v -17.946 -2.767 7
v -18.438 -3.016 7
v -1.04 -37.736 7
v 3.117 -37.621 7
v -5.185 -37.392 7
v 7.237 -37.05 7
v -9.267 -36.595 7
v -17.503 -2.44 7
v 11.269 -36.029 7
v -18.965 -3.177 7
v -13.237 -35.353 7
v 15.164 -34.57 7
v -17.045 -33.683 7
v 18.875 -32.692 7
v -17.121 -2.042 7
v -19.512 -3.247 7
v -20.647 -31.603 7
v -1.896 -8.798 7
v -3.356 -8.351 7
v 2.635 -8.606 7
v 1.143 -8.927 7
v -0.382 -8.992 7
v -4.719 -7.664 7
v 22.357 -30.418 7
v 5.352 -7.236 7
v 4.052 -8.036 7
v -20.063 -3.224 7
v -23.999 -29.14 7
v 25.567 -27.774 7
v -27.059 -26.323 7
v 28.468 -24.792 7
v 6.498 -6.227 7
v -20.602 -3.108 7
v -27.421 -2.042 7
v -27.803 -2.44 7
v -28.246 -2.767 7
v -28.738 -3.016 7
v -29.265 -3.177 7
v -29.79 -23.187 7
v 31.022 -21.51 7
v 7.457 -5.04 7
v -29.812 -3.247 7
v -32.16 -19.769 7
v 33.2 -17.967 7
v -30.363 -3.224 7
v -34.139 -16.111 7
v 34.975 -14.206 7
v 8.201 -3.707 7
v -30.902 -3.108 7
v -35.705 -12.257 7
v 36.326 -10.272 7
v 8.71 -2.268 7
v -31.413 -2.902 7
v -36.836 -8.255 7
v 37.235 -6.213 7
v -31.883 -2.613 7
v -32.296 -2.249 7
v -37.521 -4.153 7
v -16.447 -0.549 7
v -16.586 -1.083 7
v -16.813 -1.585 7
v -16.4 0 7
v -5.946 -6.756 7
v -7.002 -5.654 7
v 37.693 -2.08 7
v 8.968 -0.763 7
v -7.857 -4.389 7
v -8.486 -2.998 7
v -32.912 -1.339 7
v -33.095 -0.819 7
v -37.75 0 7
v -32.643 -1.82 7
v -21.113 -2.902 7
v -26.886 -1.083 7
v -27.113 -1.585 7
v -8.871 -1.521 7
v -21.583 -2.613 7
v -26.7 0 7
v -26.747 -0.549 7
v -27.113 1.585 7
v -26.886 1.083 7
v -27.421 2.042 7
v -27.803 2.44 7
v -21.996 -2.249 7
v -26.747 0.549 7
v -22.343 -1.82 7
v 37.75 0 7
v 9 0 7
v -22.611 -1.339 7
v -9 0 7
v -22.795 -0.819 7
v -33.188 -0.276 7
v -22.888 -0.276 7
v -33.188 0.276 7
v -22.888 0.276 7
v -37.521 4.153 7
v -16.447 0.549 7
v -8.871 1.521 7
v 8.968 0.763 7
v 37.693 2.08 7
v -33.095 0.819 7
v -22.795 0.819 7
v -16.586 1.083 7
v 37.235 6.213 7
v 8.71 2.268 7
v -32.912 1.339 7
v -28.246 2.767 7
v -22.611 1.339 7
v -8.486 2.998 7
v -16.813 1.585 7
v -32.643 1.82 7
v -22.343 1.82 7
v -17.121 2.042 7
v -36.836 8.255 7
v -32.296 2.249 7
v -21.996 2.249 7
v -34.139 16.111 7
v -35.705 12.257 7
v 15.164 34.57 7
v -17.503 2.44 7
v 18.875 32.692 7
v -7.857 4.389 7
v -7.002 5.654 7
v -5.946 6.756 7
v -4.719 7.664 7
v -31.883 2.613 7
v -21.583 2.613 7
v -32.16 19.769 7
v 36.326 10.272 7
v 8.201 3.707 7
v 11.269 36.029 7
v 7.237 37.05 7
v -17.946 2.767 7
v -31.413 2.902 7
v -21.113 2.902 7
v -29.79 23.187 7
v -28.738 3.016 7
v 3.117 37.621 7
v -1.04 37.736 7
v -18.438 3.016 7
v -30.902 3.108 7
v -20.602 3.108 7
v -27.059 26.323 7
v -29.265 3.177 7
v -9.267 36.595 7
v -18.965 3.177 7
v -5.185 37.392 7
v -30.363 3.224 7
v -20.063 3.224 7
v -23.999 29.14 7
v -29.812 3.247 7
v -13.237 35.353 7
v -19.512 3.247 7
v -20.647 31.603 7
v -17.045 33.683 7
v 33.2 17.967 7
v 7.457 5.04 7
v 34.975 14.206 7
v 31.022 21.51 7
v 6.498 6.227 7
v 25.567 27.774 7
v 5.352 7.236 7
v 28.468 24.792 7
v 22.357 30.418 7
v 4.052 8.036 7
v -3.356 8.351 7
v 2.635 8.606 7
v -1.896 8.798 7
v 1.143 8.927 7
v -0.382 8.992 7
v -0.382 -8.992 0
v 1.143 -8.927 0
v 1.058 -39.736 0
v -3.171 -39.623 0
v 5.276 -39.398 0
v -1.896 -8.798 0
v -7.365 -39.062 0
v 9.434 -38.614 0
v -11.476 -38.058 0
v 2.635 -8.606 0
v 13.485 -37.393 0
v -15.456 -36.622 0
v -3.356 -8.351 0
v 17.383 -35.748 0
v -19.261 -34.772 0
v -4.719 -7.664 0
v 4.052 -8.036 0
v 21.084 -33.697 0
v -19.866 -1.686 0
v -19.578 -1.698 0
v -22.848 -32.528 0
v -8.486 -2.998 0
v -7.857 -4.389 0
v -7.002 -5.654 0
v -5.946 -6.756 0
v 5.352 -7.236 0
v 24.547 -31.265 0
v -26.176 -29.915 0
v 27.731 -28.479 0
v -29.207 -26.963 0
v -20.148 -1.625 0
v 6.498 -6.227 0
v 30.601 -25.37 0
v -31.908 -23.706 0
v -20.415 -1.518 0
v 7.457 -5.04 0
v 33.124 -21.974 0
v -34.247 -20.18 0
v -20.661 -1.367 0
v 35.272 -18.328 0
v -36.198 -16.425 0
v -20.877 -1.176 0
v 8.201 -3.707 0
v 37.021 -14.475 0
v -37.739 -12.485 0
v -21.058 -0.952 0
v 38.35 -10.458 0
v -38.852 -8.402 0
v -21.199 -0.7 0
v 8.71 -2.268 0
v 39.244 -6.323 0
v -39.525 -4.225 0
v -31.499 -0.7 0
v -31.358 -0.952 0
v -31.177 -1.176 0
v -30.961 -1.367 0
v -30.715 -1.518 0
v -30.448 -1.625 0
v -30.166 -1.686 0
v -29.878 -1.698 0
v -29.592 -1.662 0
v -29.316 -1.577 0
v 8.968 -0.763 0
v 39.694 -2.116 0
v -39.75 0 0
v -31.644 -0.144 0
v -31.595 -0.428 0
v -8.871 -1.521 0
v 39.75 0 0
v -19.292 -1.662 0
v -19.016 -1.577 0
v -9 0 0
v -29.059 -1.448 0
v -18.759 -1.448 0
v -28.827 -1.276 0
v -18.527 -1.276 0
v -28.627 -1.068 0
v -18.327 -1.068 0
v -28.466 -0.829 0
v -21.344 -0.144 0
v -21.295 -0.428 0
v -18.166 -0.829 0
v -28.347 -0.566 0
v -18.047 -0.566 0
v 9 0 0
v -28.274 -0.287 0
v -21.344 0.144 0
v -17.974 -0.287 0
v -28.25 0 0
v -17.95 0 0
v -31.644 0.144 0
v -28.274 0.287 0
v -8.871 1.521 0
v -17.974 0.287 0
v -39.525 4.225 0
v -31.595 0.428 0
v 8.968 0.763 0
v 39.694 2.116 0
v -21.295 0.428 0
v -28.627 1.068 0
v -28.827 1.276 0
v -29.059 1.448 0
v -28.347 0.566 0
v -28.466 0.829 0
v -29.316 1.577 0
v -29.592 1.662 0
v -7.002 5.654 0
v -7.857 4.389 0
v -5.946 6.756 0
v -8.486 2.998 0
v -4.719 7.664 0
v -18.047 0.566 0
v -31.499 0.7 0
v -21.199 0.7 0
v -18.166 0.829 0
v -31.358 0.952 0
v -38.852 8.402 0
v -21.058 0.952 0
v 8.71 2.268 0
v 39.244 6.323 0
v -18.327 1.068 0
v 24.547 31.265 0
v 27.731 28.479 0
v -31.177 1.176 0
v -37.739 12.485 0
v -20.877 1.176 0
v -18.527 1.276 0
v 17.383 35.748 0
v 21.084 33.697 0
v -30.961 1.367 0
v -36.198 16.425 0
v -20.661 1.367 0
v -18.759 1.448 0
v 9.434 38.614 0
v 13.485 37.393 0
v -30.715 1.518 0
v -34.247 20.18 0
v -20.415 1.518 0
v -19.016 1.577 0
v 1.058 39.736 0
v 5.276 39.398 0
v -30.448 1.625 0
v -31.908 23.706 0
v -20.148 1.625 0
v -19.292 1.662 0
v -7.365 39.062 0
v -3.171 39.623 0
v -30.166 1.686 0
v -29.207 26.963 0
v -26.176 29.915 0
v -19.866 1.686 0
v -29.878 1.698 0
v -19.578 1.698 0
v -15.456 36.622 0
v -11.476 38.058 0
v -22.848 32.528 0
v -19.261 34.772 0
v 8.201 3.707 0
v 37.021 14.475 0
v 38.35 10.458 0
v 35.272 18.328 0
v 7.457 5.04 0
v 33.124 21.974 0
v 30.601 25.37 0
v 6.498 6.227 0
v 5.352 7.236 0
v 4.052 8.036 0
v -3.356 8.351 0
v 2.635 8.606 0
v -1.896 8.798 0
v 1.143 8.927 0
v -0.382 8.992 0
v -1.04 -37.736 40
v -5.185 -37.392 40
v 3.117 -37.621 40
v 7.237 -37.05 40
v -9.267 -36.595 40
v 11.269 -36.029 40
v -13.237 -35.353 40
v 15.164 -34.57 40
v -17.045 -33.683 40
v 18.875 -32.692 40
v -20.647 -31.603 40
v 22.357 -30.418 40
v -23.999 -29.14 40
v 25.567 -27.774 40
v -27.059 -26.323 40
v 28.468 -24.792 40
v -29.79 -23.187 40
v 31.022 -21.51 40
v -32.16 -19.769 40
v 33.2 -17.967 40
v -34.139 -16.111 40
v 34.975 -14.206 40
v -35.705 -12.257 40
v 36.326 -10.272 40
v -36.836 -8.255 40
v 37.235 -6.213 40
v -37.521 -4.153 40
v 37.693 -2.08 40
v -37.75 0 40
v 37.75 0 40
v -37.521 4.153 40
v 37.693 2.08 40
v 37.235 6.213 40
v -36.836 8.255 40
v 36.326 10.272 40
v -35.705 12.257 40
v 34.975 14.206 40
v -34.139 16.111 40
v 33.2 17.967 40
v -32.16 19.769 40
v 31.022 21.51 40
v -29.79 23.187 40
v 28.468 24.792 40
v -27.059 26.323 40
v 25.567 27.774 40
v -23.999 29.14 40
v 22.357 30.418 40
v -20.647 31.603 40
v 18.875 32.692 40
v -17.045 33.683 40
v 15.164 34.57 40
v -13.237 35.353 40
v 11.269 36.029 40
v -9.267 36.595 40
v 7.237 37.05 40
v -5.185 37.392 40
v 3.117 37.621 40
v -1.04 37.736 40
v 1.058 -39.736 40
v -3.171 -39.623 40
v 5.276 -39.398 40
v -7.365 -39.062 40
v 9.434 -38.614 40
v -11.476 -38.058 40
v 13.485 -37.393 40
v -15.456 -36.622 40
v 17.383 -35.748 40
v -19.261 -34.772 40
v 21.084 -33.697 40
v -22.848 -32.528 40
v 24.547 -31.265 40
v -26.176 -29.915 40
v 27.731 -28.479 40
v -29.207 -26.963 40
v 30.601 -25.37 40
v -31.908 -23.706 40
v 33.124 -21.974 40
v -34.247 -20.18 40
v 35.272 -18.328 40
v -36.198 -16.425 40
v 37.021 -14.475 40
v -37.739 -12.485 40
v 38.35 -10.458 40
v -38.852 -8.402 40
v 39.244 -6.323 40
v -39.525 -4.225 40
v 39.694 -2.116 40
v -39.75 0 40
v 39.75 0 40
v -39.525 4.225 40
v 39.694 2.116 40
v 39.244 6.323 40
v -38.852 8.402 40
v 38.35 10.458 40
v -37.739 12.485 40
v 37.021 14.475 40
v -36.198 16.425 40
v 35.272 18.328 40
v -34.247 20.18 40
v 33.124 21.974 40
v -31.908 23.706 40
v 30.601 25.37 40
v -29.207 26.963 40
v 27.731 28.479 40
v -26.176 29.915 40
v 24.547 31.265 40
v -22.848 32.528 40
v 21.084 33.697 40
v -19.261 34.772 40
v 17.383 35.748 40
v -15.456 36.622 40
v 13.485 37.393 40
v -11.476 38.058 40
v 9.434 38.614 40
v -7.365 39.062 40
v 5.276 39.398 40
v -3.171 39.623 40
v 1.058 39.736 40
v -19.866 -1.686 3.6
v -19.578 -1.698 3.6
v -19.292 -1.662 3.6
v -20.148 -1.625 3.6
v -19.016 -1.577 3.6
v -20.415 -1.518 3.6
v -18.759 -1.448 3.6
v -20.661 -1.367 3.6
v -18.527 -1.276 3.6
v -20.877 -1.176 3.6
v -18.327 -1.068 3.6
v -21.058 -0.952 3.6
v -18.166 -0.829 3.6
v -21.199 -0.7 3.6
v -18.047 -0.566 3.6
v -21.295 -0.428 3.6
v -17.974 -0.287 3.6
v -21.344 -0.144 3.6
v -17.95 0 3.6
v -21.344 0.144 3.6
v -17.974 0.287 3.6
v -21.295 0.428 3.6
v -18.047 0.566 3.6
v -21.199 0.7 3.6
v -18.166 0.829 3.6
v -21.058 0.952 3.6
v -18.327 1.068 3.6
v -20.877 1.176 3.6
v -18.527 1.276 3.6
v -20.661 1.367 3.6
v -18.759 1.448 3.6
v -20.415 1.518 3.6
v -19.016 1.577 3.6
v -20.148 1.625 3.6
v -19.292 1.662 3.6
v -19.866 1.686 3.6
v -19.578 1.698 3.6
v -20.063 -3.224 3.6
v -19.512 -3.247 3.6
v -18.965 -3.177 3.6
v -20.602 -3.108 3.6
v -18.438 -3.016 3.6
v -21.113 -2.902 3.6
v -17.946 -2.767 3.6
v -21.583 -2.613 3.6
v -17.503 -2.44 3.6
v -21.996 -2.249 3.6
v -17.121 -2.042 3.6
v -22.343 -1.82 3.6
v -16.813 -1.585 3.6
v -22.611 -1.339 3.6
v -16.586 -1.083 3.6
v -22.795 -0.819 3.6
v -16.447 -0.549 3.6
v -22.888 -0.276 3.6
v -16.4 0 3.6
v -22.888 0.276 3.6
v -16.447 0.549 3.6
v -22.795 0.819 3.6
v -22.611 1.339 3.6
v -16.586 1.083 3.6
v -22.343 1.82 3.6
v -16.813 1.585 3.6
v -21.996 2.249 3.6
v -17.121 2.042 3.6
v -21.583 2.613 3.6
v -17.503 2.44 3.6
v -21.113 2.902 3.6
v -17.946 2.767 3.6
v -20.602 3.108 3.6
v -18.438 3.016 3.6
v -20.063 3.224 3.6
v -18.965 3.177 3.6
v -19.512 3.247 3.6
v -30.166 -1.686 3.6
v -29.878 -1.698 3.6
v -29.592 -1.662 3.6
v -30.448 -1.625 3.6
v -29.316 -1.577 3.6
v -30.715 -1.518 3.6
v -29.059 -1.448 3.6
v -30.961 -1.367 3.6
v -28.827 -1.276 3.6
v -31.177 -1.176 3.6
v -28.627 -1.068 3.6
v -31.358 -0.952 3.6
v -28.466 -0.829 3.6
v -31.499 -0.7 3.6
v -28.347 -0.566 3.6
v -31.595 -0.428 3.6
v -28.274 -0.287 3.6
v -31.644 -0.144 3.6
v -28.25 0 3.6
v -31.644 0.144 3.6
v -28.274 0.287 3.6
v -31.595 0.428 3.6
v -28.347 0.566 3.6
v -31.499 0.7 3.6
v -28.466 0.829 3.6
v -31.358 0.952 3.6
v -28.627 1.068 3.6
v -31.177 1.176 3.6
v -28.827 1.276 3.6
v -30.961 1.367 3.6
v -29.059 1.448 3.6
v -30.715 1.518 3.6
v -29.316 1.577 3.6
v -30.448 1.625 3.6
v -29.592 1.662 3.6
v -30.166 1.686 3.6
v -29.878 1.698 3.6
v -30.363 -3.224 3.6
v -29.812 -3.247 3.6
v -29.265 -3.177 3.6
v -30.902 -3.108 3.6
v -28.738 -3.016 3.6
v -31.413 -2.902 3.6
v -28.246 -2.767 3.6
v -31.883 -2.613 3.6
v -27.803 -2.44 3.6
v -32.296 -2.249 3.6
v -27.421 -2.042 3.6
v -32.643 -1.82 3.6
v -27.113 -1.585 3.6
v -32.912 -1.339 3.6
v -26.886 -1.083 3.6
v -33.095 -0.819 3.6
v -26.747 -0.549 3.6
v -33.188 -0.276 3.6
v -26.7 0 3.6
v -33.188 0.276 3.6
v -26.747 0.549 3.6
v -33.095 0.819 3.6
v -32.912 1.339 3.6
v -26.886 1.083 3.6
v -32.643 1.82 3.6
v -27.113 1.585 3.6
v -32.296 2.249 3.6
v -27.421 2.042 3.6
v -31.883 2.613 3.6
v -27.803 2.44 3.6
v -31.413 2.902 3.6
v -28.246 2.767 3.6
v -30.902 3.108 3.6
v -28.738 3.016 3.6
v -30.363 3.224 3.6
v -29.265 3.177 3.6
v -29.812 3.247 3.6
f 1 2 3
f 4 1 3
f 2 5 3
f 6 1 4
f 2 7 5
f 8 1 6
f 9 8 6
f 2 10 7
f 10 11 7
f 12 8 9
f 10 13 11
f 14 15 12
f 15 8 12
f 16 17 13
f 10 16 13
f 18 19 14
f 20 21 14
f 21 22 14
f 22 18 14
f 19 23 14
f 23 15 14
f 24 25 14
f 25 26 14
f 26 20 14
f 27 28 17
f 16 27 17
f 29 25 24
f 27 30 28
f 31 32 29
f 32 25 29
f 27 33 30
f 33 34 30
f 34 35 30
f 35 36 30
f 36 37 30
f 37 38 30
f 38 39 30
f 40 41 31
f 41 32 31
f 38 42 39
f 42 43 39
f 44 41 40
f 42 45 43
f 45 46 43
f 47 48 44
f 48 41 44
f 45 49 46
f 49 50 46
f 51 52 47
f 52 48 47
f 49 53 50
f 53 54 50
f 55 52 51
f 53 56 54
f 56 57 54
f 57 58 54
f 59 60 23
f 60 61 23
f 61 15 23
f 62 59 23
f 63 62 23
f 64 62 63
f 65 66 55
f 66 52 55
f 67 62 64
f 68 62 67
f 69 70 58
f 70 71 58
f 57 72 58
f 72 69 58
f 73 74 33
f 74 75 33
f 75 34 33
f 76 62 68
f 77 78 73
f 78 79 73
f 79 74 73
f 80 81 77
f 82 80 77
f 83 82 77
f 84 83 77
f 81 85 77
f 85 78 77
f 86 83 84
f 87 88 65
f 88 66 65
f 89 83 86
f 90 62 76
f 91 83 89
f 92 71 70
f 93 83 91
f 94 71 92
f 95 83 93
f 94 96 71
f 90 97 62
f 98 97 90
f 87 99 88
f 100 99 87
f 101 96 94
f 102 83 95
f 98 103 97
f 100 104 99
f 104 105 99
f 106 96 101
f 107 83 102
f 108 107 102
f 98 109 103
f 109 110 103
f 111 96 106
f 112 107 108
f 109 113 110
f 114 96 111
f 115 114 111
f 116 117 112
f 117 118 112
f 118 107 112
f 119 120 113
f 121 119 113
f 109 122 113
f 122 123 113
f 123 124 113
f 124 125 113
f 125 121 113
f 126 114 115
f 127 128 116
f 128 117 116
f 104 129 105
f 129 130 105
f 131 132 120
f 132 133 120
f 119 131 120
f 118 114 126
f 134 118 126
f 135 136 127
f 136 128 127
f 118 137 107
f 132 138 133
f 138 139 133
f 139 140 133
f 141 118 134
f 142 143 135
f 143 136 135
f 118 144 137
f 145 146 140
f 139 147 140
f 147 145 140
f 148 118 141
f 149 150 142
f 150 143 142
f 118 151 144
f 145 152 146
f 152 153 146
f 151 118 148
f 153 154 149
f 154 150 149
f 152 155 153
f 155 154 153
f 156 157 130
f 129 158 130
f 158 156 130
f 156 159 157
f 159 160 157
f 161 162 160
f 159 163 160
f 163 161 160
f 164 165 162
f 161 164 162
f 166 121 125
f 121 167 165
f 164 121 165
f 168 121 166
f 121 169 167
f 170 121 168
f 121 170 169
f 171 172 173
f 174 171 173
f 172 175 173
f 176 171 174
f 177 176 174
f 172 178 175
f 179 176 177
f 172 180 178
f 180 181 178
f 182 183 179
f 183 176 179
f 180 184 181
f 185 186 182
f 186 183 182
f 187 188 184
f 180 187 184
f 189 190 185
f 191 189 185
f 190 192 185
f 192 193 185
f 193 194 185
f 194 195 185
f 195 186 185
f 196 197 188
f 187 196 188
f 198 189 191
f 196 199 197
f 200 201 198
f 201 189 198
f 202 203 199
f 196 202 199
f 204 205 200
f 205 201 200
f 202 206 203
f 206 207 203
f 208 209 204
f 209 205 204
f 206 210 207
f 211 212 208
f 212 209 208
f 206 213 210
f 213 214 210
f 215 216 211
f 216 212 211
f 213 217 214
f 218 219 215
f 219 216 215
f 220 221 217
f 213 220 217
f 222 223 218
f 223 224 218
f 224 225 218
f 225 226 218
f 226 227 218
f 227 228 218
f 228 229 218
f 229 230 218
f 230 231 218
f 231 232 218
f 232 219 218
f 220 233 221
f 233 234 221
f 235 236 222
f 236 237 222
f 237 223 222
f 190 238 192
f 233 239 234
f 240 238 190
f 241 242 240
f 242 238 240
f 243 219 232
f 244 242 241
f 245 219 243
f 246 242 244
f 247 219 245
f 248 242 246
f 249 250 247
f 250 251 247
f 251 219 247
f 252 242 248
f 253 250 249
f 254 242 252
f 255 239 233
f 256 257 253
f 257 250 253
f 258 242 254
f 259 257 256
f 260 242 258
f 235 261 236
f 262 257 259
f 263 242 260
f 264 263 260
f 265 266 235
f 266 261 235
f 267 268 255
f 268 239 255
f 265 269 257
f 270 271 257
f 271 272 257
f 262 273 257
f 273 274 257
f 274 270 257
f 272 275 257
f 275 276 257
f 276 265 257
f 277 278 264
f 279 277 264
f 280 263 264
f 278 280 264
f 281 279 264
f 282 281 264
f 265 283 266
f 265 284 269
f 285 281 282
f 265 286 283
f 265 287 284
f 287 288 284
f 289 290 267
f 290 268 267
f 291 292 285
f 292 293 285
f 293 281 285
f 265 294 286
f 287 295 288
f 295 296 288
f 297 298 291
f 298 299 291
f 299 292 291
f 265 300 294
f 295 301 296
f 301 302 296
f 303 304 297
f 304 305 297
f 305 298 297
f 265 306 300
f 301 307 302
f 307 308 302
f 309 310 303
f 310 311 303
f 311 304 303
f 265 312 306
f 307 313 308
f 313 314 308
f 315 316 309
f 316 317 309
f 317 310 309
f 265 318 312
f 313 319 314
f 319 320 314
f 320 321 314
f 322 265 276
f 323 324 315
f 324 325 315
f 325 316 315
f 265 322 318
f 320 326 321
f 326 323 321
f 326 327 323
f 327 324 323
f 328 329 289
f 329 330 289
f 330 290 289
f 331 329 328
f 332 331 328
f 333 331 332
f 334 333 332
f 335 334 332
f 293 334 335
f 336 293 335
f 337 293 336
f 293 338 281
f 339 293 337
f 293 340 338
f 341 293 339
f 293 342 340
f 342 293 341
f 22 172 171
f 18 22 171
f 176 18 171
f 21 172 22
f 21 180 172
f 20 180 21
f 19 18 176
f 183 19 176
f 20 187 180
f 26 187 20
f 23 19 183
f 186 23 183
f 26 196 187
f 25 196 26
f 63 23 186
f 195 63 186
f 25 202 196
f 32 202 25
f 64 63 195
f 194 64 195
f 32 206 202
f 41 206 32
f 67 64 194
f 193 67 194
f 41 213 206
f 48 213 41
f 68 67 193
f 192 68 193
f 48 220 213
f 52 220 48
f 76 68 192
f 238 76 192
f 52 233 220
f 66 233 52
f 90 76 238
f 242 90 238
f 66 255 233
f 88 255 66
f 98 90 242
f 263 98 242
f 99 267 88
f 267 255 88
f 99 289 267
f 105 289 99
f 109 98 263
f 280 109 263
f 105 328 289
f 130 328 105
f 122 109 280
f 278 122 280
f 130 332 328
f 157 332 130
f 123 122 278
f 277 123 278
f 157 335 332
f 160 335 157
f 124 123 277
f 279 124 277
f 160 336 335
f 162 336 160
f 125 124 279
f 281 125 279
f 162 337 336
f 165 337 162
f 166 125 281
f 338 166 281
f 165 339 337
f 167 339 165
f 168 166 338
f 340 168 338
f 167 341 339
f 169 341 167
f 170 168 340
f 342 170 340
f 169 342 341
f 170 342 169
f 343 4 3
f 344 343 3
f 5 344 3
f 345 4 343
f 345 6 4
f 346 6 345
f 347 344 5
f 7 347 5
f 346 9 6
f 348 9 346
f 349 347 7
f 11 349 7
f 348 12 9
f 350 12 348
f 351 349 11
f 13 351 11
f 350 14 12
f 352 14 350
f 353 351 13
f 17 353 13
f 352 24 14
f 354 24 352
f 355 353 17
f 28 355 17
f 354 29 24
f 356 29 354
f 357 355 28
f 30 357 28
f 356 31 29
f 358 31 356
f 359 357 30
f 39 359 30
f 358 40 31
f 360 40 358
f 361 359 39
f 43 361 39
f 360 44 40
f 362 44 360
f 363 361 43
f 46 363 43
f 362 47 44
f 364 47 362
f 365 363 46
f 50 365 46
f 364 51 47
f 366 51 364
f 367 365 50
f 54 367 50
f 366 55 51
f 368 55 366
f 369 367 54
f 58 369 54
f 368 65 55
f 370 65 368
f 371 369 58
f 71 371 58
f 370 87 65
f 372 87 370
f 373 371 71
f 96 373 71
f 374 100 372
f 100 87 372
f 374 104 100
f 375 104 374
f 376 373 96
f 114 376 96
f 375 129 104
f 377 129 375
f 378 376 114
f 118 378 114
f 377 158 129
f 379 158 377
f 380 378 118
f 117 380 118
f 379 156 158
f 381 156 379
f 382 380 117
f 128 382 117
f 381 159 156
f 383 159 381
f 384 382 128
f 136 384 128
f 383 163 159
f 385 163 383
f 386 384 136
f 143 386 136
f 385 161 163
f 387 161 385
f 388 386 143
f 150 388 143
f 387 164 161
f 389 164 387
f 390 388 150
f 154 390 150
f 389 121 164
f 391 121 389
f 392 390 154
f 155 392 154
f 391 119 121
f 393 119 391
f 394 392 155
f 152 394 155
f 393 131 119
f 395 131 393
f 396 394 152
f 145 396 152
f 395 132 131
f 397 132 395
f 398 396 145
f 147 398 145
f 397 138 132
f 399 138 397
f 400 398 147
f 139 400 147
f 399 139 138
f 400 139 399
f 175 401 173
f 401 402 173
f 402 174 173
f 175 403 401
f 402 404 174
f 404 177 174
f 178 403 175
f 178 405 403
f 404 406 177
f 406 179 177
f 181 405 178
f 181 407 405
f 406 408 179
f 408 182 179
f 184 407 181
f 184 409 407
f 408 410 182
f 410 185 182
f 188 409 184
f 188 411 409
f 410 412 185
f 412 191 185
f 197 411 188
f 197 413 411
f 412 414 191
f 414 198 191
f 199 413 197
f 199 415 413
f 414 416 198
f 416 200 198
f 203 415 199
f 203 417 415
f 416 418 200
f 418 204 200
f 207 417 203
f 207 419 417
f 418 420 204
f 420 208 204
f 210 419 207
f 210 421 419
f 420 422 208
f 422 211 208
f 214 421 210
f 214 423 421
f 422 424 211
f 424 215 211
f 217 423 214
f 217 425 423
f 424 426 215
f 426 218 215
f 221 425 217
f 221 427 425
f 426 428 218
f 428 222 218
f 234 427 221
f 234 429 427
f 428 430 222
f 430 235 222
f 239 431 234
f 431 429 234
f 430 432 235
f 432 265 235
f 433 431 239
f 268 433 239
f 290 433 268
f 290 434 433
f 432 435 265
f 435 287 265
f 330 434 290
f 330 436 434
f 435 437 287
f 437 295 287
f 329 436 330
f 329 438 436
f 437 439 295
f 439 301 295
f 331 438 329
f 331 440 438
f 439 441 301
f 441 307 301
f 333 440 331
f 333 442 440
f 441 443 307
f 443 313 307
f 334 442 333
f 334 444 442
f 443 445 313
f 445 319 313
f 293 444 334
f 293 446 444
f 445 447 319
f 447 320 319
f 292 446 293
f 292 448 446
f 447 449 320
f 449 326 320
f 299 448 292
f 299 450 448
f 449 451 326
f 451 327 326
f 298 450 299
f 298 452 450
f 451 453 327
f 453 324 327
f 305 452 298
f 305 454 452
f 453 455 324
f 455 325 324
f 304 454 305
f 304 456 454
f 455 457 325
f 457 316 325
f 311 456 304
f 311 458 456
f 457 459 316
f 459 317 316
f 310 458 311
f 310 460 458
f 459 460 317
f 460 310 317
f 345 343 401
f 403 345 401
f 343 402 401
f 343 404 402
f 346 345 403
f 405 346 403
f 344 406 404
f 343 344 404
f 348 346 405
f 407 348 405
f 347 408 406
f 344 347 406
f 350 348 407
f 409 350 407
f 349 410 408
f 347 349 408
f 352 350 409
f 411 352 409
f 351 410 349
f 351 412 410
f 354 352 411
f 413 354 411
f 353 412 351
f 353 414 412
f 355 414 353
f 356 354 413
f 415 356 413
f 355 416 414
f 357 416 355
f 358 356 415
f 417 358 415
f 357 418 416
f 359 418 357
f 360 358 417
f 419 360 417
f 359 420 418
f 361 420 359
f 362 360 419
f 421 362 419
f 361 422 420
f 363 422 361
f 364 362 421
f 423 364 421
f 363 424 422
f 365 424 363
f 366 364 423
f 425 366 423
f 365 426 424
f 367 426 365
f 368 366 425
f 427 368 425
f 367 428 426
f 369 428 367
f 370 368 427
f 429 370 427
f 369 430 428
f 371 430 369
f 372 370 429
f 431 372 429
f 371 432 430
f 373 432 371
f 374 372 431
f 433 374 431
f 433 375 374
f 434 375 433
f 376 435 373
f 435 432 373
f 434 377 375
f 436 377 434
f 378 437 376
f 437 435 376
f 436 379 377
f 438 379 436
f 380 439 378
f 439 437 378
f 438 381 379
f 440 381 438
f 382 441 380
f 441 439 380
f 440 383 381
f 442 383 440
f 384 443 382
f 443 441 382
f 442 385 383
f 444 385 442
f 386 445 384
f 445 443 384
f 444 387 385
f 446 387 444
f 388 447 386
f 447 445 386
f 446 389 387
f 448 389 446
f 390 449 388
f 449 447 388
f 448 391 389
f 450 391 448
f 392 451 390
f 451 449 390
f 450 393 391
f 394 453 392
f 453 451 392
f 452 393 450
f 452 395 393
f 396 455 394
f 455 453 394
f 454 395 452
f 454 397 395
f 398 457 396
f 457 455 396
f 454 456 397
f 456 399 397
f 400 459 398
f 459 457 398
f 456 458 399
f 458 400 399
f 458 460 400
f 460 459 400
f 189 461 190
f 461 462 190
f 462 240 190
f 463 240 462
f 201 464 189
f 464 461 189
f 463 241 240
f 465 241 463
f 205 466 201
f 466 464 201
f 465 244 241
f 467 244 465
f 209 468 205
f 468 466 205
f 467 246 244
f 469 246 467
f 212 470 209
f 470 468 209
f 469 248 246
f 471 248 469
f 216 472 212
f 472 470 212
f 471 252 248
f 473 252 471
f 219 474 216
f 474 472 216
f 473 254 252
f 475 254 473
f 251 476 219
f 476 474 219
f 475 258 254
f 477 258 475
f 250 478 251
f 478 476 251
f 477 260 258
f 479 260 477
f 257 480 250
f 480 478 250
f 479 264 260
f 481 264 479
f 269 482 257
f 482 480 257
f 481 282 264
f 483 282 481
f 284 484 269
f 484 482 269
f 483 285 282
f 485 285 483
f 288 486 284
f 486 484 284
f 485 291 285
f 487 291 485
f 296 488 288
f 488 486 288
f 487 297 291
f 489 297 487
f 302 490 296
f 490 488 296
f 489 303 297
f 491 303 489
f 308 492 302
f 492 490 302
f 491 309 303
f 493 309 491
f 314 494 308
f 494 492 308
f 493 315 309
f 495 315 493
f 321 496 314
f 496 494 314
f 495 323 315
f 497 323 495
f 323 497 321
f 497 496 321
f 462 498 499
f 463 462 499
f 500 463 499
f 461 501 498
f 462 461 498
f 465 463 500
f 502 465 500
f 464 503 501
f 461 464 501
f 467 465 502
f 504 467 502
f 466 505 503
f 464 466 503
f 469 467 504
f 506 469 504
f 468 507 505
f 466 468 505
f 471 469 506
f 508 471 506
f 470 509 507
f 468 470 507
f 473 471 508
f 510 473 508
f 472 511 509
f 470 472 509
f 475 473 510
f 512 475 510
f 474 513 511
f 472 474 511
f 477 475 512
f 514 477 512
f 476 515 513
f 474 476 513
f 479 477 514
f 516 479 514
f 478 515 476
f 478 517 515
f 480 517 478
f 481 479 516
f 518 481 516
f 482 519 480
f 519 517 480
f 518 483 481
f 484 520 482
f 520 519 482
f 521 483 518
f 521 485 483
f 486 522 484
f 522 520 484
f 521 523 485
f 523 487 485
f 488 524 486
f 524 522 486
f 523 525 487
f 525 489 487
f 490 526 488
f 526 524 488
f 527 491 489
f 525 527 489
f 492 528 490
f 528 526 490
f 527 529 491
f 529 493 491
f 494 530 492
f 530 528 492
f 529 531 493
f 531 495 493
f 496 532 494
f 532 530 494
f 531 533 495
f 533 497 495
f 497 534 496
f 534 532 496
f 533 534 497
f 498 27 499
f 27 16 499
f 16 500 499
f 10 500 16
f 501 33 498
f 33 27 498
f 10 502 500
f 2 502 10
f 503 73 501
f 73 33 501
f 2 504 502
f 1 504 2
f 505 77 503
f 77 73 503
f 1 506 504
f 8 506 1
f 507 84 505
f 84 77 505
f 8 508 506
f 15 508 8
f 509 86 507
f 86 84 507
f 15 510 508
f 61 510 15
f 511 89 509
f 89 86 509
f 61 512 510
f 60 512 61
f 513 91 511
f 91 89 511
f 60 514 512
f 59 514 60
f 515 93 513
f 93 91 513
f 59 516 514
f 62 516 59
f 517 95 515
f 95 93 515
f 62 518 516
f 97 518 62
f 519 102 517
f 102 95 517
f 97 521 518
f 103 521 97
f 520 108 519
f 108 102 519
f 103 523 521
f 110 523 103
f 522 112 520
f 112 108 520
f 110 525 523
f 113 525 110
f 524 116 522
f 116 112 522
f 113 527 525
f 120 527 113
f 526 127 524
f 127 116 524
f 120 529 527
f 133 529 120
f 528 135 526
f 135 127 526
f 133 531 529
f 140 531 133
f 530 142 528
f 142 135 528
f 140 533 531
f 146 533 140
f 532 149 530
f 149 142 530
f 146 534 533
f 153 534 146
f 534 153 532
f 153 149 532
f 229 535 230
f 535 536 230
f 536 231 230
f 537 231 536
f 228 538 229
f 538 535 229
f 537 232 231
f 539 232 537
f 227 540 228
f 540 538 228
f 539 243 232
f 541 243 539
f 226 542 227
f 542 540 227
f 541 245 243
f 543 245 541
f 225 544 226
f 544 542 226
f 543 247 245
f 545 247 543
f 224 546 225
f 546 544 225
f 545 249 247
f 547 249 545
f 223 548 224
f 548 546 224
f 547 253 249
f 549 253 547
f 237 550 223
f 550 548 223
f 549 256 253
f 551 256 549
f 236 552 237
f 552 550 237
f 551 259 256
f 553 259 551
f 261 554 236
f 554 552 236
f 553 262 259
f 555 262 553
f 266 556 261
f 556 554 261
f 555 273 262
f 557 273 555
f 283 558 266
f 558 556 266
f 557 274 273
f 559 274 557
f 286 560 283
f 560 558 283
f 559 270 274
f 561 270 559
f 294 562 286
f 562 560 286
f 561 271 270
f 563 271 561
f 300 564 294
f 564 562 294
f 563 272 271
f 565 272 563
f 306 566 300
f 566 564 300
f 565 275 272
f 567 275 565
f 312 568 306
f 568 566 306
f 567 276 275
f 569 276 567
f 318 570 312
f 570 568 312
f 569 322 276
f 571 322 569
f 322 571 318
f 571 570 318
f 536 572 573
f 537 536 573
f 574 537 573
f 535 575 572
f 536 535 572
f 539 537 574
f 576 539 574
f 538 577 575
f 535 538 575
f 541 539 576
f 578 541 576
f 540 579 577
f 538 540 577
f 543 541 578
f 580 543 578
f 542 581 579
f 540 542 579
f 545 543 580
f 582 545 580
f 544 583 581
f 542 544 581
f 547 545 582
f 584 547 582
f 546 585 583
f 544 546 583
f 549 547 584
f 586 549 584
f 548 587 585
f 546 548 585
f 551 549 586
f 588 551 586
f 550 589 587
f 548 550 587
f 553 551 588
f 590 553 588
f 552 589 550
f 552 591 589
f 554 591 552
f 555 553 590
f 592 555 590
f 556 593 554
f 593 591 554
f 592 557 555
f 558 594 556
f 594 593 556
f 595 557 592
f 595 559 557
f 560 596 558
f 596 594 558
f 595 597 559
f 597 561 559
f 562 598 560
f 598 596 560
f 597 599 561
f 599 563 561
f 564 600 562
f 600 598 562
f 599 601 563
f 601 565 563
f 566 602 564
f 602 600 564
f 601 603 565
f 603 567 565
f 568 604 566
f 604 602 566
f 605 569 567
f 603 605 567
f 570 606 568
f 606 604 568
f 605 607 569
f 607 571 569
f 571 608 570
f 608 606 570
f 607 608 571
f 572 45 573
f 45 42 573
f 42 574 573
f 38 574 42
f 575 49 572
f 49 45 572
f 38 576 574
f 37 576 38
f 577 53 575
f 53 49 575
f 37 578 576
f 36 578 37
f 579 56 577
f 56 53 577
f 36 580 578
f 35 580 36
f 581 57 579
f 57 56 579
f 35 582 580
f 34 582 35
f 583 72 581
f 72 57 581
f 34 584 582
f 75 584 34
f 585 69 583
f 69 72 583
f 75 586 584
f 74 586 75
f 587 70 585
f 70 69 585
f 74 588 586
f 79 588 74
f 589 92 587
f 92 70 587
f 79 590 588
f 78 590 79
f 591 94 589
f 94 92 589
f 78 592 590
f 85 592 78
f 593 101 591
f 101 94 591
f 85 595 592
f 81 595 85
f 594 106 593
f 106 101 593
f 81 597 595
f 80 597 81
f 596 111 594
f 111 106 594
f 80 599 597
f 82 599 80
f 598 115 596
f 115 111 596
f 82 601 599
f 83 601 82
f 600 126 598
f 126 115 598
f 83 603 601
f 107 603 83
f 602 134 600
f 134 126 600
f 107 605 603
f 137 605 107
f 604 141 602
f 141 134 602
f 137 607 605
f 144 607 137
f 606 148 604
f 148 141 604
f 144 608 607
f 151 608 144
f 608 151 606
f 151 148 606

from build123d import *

# Parameters (mm, degrees)
SKETCH1_R                                       = 37.75
SKETCH1_R_2                                     = 9
BOSS_EXTRUDE1_DEPTH                             = 7
SKETCH1_5_R                                     = 39.75
SKETCH1_5_R_2                                   = 37.75
BOSS_EXTRUDE2_DEPTH                             = 40
CBORE_FOR_M3_SOCKET_HEAD_CAP_SCREW1_D           = 3.4
CBORE_FOR_M3_SOCKET_HEAD_CAP_SCREW1_CBORE_D     = 6.5
CBORE_FOR_M3_SOCKET_HEAD_CAP_SCREW1_CBORE_DEPTH = 3.4


with BuildPart() as part:
    # Sketch1 → Boss-Extrude1 (new body)
    with BuildSketch(Plane.XY):
        Circle(SKETCH1_R)
        Circle(SKETCH1_R_2, mode=Mode.SUBTRACT)
    extrude(amount=BOSS_EXTRUDE1_DEPTH)

    # Sketch1<5> → Boss-Extrude2 (add)
    with BuildSketch(Plane.XY):
        Circle(SKETCH1_5_R)
        Circle(SKETCH1_5_R_2, mode=Mode.SUBTRACT)
    extrude(amount=BOSS_EXTRUDE2_DEPTH)

    # CBORE for M3 Socket Head Cap Screw1 (through all)
    with Locations(Plane(origin=(-29.95, 0, 7), x_dir=(1, 0, 0), z_dir=(0, 0, 1))):
        with Locations((0, 0), (10.3, 0)):
            CounterBoreHole(CBORE_FOR_M3_SOCKET_HEAD_CAP_SCREW1_D / 2, CBORE_FOR_M3_SOCKET_HEAD_CAP_SCREW1_CBORE_D / 2, CBORE_FOR_M3_SOCKET_HEAD_CAP_SCREW1_CBORE_DEPTH)


solid = part.part
